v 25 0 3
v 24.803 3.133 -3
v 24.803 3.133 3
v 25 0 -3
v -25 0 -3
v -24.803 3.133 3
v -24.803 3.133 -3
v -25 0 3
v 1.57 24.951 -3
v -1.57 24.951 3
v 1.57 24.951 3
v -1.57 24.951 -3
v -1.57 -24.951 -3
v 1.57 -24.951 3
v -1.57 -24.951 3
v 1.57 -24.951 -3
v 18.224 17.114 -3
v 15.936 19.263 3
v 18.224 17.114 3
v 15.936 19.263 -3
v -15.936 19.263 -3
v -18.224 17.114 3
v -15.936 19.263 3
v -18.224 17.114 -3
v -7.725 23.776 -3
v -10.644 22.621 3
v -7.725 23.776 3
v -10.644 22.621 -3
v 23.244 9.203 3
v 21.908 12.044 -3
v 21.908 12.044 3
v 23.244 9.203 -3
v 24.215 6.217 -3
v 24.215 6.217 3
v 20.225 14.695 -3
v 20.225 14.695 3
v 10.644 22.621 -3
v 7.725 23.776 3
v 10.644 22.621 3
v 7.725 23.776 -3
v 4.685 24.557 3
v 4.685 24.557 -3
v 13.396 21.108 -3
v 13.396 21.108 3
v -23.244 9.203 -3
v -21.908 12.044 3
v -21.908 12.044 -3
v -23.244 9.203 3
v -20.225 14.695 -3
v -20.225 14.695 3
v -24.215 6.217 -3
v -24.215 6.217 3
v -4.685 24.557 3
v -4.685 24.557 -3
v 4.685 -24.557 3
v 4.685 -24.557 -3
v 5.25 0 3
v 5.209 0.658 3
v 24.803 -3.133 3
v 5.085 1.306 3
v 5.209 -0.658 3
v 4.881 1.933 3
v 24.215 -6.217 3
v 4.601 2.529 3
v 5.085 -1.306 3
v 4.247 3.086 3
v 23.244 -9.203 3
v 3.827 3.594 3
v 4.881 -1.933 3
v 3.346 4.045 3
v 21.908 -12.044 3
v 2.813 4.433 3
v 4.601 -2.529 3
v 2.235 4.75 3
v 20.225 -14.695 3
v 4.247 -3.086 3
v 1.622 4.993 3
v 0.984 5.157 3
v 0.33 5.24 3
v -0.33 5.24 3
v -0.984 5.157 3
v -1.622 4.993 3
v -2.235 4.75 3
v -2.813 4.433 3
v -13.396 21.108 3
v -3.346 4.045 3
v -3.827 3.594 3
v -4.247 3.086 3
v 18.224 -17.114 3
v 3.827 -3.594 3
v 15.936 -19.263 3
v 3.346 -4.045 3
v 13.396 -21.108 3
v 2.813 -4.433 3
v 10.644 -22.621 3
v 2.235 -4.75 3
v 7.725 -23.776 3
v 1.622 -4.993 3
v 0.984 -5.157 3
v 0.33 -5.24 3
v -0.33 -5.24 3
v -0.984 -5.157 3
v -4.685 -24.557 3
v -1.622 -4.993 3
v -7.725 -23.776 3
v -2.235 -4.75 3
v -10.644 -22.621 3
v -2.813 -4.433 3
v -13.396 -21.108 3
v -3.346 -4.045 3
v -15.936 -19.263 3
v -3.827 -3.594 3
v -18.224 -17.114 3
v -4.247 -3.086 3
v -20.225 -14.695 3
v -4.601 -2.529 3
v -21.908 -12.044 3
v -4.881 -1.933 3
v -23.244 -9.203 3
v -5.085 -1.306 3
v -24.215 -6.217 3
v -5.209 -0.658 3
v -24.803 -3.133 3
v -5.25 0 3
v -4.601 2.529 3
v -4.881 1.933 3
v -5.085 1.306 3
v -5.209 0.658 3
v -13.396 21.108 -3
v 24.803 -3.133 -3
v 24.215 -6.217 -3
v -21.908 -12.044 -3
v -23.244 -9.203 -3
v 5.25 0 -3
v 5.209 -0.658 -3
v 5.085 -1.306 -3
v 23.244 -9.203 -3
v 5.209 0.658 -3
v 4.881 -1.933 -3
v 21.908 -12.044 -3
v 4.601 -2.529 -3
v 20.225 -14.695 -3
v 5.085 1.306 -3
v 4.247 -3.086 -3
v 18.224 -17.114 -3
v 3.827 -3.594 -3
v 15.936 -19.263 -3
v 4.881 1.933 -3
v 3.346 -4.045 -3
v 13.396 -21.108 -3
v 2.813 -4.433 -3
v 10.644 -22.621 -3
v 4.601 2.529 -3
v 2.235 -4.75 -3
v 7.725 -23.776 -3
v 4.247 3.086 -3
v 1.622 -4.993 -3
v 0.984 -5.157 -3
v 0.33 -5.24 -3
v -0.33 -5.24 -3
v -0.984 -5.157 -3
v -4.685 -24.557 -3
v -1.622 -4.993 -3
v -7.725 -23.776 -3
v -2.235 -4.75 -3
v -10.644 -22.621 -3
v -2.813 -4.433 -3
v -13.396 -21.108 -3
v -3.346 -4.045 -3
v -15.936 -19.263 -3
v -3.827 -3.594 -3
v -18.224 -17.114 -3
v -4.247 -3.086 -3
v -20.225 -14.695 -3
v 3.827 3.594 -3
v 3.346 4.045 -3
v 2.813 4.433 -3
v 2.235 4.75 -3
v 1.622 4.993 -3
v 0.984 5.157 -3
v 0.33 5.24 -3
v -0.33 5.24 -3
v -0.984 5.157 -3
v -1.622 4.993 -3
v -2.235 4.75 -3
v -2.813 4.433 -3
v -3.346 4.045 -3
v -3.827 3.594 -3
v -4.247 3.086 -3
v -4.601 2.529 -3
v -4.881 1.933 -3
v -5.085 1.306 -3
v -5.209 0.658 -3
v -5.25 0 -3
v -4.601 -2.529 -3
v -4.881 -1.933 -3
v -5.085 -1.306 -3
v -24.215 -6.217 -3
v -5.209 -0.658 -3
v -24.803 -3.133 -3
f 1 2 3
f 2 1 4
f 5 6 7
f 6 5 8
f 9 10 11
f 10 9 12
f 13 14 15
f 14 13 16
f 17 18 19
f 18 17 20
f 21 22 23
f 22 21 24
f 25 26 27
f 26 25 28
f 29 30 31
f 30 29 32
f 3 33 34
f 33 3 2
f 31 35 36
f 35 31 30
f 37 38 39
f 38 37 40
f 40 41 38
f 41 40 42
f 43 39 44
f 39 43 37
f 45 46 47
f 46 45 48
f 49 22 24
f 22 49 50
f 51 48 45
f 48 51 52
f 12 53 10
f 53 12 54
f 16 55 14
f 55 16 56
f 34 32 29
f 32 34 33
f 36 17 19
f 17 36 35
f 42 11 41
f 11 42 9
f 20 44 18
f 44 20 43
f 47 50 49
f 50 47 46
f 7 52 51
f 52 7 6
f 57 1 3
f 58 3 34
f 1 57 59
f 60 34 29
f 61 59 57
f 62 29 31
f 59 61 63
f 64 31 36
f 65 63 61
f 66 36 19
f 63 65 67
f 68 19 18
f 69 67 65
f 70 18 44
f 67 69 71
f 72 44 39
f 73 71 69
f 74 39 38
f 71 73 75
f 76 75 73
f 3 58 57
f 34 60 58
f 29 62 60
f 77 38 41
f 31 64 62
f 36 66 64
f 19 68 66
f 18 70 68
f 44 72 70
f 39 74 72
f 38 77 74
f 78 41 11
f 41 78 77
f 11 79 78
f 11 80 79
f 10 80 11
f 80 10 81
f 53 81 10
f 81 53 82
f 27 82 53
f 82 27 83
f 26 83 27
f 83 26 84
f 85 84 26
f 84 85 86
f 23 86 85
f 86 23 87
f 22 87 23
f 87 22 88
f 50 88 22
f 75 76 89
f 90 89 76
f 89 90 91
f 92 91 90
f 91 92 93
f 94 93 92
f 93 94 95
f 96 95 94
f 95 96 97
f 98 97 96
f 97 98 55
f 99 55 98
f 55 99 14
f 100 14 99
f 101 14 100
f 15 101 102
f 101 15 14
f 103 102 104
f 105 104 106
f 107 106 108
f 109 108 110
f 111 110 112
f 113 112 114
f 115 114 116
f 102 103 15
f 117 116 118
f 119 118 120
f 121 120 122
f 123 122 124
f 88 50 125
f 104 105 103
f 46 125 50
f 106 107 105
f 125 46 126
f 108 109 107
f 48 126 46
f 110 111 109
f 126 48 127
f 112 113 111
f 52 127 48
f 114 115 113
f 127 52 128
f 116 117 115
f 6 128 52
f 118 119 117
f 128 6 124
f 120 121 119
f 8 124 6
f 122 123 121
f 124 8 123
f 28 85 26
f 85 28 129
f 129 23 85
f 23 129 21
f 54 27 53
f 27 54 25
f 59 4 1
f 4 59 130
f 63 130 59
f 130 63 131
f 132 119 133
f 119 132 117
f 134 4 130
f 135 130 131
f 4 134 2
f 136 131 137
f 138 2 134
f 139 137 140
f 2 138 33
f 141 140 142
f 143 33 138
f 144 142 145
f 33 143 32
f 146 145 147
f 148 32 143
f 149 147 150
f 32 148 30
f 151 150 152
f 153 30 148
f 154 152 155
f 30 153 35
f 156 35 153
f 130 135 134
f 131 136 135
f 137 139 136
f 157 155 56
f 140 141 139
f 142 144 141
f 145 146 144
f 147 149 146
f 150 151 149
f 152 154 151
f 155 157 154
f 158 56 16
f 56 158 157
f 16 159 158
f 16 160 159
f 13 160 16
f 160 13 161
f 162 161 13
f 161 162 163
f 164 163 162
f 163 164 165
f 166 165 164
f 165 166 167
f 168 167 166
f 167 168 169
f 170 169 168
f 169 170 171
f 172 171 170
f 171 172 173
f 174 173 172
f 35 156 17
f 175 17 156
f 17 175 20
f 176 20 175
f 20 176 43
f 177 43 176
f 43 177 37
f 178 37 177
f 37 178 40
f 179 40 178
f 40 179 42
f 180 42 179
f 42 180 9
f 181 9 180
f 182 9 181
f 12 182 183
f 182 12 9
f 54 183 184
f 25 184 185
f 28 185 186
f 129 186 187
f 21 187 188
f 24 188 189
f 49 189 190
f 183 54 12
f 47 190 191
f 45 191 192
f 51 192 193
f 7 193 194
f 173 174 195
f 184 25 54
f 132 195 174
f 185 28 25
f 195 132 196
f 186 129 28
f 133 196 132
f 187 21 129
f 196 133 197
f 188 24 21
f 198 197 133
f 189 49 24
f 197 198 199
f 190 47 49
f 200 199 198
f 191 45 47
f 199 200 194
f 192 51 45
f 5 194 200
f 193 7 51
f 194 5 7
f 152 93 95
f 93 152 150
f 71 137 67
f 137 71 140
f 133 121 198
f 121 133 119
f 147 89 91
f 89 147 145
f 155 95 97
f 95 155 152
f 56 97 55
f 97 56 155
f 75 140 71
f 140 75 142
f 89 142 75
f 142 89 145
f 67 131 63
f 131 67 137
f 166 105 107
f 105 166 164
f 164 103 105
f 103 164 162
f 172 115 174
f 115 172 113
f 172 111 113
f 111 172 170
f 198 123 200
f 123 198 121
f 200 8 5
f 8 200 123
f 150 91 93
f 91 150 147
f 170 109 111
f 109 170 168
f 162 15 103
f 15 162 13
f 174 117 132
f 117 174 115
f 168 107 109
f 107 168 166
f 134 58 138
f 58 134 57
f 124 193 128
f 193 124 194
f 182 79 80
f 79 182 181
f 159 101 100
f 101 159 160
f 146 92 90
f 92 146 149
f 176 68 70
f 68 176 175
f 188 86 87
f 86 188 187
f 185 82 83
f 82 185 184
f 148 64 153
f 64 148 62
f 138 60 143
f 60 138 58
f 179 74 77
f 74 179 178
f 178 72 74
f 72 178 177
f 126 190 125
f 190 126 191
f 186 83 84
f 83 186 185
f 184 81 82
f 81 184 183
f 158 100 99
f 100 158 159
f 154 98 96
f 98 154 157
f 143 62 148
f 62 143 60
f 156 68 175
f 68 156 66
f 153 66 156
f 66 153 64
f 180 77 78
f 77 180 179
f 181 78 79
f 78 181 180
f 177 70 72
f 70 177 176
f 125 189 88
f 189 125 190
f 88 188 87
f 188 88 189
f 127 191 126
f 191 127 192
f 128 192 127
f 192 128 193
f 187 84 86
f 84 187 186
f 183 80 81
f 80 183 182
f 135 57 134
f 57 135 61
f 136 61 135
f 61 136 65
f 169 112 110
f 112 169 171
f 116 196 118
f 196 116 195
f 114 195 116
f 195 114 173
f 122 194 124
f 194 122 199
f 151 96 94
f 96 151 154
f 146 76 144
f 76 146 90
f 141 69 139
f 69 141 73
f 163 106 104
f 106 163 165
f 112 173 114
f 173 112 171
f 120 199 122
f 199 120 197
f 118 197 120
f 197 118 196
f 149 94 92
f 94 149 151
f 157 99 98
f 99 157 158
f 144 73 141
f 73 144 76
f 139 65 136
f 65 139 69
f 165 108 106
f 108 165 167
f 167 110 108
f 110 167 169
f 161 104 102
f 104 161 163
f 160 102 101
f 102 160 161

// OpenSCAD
$fn = 50;


difference() {
	union() {
		translate(v = [0, 0, -3.0000000000]) {
			cylinder(h = 6, r = 25.0000000000);
		}
	}
	union() {
		translate(v = [0, 0, -100.0000000000]) {
			cylinder(h = 200, r = 5.2500000000);
		}
	}
}
